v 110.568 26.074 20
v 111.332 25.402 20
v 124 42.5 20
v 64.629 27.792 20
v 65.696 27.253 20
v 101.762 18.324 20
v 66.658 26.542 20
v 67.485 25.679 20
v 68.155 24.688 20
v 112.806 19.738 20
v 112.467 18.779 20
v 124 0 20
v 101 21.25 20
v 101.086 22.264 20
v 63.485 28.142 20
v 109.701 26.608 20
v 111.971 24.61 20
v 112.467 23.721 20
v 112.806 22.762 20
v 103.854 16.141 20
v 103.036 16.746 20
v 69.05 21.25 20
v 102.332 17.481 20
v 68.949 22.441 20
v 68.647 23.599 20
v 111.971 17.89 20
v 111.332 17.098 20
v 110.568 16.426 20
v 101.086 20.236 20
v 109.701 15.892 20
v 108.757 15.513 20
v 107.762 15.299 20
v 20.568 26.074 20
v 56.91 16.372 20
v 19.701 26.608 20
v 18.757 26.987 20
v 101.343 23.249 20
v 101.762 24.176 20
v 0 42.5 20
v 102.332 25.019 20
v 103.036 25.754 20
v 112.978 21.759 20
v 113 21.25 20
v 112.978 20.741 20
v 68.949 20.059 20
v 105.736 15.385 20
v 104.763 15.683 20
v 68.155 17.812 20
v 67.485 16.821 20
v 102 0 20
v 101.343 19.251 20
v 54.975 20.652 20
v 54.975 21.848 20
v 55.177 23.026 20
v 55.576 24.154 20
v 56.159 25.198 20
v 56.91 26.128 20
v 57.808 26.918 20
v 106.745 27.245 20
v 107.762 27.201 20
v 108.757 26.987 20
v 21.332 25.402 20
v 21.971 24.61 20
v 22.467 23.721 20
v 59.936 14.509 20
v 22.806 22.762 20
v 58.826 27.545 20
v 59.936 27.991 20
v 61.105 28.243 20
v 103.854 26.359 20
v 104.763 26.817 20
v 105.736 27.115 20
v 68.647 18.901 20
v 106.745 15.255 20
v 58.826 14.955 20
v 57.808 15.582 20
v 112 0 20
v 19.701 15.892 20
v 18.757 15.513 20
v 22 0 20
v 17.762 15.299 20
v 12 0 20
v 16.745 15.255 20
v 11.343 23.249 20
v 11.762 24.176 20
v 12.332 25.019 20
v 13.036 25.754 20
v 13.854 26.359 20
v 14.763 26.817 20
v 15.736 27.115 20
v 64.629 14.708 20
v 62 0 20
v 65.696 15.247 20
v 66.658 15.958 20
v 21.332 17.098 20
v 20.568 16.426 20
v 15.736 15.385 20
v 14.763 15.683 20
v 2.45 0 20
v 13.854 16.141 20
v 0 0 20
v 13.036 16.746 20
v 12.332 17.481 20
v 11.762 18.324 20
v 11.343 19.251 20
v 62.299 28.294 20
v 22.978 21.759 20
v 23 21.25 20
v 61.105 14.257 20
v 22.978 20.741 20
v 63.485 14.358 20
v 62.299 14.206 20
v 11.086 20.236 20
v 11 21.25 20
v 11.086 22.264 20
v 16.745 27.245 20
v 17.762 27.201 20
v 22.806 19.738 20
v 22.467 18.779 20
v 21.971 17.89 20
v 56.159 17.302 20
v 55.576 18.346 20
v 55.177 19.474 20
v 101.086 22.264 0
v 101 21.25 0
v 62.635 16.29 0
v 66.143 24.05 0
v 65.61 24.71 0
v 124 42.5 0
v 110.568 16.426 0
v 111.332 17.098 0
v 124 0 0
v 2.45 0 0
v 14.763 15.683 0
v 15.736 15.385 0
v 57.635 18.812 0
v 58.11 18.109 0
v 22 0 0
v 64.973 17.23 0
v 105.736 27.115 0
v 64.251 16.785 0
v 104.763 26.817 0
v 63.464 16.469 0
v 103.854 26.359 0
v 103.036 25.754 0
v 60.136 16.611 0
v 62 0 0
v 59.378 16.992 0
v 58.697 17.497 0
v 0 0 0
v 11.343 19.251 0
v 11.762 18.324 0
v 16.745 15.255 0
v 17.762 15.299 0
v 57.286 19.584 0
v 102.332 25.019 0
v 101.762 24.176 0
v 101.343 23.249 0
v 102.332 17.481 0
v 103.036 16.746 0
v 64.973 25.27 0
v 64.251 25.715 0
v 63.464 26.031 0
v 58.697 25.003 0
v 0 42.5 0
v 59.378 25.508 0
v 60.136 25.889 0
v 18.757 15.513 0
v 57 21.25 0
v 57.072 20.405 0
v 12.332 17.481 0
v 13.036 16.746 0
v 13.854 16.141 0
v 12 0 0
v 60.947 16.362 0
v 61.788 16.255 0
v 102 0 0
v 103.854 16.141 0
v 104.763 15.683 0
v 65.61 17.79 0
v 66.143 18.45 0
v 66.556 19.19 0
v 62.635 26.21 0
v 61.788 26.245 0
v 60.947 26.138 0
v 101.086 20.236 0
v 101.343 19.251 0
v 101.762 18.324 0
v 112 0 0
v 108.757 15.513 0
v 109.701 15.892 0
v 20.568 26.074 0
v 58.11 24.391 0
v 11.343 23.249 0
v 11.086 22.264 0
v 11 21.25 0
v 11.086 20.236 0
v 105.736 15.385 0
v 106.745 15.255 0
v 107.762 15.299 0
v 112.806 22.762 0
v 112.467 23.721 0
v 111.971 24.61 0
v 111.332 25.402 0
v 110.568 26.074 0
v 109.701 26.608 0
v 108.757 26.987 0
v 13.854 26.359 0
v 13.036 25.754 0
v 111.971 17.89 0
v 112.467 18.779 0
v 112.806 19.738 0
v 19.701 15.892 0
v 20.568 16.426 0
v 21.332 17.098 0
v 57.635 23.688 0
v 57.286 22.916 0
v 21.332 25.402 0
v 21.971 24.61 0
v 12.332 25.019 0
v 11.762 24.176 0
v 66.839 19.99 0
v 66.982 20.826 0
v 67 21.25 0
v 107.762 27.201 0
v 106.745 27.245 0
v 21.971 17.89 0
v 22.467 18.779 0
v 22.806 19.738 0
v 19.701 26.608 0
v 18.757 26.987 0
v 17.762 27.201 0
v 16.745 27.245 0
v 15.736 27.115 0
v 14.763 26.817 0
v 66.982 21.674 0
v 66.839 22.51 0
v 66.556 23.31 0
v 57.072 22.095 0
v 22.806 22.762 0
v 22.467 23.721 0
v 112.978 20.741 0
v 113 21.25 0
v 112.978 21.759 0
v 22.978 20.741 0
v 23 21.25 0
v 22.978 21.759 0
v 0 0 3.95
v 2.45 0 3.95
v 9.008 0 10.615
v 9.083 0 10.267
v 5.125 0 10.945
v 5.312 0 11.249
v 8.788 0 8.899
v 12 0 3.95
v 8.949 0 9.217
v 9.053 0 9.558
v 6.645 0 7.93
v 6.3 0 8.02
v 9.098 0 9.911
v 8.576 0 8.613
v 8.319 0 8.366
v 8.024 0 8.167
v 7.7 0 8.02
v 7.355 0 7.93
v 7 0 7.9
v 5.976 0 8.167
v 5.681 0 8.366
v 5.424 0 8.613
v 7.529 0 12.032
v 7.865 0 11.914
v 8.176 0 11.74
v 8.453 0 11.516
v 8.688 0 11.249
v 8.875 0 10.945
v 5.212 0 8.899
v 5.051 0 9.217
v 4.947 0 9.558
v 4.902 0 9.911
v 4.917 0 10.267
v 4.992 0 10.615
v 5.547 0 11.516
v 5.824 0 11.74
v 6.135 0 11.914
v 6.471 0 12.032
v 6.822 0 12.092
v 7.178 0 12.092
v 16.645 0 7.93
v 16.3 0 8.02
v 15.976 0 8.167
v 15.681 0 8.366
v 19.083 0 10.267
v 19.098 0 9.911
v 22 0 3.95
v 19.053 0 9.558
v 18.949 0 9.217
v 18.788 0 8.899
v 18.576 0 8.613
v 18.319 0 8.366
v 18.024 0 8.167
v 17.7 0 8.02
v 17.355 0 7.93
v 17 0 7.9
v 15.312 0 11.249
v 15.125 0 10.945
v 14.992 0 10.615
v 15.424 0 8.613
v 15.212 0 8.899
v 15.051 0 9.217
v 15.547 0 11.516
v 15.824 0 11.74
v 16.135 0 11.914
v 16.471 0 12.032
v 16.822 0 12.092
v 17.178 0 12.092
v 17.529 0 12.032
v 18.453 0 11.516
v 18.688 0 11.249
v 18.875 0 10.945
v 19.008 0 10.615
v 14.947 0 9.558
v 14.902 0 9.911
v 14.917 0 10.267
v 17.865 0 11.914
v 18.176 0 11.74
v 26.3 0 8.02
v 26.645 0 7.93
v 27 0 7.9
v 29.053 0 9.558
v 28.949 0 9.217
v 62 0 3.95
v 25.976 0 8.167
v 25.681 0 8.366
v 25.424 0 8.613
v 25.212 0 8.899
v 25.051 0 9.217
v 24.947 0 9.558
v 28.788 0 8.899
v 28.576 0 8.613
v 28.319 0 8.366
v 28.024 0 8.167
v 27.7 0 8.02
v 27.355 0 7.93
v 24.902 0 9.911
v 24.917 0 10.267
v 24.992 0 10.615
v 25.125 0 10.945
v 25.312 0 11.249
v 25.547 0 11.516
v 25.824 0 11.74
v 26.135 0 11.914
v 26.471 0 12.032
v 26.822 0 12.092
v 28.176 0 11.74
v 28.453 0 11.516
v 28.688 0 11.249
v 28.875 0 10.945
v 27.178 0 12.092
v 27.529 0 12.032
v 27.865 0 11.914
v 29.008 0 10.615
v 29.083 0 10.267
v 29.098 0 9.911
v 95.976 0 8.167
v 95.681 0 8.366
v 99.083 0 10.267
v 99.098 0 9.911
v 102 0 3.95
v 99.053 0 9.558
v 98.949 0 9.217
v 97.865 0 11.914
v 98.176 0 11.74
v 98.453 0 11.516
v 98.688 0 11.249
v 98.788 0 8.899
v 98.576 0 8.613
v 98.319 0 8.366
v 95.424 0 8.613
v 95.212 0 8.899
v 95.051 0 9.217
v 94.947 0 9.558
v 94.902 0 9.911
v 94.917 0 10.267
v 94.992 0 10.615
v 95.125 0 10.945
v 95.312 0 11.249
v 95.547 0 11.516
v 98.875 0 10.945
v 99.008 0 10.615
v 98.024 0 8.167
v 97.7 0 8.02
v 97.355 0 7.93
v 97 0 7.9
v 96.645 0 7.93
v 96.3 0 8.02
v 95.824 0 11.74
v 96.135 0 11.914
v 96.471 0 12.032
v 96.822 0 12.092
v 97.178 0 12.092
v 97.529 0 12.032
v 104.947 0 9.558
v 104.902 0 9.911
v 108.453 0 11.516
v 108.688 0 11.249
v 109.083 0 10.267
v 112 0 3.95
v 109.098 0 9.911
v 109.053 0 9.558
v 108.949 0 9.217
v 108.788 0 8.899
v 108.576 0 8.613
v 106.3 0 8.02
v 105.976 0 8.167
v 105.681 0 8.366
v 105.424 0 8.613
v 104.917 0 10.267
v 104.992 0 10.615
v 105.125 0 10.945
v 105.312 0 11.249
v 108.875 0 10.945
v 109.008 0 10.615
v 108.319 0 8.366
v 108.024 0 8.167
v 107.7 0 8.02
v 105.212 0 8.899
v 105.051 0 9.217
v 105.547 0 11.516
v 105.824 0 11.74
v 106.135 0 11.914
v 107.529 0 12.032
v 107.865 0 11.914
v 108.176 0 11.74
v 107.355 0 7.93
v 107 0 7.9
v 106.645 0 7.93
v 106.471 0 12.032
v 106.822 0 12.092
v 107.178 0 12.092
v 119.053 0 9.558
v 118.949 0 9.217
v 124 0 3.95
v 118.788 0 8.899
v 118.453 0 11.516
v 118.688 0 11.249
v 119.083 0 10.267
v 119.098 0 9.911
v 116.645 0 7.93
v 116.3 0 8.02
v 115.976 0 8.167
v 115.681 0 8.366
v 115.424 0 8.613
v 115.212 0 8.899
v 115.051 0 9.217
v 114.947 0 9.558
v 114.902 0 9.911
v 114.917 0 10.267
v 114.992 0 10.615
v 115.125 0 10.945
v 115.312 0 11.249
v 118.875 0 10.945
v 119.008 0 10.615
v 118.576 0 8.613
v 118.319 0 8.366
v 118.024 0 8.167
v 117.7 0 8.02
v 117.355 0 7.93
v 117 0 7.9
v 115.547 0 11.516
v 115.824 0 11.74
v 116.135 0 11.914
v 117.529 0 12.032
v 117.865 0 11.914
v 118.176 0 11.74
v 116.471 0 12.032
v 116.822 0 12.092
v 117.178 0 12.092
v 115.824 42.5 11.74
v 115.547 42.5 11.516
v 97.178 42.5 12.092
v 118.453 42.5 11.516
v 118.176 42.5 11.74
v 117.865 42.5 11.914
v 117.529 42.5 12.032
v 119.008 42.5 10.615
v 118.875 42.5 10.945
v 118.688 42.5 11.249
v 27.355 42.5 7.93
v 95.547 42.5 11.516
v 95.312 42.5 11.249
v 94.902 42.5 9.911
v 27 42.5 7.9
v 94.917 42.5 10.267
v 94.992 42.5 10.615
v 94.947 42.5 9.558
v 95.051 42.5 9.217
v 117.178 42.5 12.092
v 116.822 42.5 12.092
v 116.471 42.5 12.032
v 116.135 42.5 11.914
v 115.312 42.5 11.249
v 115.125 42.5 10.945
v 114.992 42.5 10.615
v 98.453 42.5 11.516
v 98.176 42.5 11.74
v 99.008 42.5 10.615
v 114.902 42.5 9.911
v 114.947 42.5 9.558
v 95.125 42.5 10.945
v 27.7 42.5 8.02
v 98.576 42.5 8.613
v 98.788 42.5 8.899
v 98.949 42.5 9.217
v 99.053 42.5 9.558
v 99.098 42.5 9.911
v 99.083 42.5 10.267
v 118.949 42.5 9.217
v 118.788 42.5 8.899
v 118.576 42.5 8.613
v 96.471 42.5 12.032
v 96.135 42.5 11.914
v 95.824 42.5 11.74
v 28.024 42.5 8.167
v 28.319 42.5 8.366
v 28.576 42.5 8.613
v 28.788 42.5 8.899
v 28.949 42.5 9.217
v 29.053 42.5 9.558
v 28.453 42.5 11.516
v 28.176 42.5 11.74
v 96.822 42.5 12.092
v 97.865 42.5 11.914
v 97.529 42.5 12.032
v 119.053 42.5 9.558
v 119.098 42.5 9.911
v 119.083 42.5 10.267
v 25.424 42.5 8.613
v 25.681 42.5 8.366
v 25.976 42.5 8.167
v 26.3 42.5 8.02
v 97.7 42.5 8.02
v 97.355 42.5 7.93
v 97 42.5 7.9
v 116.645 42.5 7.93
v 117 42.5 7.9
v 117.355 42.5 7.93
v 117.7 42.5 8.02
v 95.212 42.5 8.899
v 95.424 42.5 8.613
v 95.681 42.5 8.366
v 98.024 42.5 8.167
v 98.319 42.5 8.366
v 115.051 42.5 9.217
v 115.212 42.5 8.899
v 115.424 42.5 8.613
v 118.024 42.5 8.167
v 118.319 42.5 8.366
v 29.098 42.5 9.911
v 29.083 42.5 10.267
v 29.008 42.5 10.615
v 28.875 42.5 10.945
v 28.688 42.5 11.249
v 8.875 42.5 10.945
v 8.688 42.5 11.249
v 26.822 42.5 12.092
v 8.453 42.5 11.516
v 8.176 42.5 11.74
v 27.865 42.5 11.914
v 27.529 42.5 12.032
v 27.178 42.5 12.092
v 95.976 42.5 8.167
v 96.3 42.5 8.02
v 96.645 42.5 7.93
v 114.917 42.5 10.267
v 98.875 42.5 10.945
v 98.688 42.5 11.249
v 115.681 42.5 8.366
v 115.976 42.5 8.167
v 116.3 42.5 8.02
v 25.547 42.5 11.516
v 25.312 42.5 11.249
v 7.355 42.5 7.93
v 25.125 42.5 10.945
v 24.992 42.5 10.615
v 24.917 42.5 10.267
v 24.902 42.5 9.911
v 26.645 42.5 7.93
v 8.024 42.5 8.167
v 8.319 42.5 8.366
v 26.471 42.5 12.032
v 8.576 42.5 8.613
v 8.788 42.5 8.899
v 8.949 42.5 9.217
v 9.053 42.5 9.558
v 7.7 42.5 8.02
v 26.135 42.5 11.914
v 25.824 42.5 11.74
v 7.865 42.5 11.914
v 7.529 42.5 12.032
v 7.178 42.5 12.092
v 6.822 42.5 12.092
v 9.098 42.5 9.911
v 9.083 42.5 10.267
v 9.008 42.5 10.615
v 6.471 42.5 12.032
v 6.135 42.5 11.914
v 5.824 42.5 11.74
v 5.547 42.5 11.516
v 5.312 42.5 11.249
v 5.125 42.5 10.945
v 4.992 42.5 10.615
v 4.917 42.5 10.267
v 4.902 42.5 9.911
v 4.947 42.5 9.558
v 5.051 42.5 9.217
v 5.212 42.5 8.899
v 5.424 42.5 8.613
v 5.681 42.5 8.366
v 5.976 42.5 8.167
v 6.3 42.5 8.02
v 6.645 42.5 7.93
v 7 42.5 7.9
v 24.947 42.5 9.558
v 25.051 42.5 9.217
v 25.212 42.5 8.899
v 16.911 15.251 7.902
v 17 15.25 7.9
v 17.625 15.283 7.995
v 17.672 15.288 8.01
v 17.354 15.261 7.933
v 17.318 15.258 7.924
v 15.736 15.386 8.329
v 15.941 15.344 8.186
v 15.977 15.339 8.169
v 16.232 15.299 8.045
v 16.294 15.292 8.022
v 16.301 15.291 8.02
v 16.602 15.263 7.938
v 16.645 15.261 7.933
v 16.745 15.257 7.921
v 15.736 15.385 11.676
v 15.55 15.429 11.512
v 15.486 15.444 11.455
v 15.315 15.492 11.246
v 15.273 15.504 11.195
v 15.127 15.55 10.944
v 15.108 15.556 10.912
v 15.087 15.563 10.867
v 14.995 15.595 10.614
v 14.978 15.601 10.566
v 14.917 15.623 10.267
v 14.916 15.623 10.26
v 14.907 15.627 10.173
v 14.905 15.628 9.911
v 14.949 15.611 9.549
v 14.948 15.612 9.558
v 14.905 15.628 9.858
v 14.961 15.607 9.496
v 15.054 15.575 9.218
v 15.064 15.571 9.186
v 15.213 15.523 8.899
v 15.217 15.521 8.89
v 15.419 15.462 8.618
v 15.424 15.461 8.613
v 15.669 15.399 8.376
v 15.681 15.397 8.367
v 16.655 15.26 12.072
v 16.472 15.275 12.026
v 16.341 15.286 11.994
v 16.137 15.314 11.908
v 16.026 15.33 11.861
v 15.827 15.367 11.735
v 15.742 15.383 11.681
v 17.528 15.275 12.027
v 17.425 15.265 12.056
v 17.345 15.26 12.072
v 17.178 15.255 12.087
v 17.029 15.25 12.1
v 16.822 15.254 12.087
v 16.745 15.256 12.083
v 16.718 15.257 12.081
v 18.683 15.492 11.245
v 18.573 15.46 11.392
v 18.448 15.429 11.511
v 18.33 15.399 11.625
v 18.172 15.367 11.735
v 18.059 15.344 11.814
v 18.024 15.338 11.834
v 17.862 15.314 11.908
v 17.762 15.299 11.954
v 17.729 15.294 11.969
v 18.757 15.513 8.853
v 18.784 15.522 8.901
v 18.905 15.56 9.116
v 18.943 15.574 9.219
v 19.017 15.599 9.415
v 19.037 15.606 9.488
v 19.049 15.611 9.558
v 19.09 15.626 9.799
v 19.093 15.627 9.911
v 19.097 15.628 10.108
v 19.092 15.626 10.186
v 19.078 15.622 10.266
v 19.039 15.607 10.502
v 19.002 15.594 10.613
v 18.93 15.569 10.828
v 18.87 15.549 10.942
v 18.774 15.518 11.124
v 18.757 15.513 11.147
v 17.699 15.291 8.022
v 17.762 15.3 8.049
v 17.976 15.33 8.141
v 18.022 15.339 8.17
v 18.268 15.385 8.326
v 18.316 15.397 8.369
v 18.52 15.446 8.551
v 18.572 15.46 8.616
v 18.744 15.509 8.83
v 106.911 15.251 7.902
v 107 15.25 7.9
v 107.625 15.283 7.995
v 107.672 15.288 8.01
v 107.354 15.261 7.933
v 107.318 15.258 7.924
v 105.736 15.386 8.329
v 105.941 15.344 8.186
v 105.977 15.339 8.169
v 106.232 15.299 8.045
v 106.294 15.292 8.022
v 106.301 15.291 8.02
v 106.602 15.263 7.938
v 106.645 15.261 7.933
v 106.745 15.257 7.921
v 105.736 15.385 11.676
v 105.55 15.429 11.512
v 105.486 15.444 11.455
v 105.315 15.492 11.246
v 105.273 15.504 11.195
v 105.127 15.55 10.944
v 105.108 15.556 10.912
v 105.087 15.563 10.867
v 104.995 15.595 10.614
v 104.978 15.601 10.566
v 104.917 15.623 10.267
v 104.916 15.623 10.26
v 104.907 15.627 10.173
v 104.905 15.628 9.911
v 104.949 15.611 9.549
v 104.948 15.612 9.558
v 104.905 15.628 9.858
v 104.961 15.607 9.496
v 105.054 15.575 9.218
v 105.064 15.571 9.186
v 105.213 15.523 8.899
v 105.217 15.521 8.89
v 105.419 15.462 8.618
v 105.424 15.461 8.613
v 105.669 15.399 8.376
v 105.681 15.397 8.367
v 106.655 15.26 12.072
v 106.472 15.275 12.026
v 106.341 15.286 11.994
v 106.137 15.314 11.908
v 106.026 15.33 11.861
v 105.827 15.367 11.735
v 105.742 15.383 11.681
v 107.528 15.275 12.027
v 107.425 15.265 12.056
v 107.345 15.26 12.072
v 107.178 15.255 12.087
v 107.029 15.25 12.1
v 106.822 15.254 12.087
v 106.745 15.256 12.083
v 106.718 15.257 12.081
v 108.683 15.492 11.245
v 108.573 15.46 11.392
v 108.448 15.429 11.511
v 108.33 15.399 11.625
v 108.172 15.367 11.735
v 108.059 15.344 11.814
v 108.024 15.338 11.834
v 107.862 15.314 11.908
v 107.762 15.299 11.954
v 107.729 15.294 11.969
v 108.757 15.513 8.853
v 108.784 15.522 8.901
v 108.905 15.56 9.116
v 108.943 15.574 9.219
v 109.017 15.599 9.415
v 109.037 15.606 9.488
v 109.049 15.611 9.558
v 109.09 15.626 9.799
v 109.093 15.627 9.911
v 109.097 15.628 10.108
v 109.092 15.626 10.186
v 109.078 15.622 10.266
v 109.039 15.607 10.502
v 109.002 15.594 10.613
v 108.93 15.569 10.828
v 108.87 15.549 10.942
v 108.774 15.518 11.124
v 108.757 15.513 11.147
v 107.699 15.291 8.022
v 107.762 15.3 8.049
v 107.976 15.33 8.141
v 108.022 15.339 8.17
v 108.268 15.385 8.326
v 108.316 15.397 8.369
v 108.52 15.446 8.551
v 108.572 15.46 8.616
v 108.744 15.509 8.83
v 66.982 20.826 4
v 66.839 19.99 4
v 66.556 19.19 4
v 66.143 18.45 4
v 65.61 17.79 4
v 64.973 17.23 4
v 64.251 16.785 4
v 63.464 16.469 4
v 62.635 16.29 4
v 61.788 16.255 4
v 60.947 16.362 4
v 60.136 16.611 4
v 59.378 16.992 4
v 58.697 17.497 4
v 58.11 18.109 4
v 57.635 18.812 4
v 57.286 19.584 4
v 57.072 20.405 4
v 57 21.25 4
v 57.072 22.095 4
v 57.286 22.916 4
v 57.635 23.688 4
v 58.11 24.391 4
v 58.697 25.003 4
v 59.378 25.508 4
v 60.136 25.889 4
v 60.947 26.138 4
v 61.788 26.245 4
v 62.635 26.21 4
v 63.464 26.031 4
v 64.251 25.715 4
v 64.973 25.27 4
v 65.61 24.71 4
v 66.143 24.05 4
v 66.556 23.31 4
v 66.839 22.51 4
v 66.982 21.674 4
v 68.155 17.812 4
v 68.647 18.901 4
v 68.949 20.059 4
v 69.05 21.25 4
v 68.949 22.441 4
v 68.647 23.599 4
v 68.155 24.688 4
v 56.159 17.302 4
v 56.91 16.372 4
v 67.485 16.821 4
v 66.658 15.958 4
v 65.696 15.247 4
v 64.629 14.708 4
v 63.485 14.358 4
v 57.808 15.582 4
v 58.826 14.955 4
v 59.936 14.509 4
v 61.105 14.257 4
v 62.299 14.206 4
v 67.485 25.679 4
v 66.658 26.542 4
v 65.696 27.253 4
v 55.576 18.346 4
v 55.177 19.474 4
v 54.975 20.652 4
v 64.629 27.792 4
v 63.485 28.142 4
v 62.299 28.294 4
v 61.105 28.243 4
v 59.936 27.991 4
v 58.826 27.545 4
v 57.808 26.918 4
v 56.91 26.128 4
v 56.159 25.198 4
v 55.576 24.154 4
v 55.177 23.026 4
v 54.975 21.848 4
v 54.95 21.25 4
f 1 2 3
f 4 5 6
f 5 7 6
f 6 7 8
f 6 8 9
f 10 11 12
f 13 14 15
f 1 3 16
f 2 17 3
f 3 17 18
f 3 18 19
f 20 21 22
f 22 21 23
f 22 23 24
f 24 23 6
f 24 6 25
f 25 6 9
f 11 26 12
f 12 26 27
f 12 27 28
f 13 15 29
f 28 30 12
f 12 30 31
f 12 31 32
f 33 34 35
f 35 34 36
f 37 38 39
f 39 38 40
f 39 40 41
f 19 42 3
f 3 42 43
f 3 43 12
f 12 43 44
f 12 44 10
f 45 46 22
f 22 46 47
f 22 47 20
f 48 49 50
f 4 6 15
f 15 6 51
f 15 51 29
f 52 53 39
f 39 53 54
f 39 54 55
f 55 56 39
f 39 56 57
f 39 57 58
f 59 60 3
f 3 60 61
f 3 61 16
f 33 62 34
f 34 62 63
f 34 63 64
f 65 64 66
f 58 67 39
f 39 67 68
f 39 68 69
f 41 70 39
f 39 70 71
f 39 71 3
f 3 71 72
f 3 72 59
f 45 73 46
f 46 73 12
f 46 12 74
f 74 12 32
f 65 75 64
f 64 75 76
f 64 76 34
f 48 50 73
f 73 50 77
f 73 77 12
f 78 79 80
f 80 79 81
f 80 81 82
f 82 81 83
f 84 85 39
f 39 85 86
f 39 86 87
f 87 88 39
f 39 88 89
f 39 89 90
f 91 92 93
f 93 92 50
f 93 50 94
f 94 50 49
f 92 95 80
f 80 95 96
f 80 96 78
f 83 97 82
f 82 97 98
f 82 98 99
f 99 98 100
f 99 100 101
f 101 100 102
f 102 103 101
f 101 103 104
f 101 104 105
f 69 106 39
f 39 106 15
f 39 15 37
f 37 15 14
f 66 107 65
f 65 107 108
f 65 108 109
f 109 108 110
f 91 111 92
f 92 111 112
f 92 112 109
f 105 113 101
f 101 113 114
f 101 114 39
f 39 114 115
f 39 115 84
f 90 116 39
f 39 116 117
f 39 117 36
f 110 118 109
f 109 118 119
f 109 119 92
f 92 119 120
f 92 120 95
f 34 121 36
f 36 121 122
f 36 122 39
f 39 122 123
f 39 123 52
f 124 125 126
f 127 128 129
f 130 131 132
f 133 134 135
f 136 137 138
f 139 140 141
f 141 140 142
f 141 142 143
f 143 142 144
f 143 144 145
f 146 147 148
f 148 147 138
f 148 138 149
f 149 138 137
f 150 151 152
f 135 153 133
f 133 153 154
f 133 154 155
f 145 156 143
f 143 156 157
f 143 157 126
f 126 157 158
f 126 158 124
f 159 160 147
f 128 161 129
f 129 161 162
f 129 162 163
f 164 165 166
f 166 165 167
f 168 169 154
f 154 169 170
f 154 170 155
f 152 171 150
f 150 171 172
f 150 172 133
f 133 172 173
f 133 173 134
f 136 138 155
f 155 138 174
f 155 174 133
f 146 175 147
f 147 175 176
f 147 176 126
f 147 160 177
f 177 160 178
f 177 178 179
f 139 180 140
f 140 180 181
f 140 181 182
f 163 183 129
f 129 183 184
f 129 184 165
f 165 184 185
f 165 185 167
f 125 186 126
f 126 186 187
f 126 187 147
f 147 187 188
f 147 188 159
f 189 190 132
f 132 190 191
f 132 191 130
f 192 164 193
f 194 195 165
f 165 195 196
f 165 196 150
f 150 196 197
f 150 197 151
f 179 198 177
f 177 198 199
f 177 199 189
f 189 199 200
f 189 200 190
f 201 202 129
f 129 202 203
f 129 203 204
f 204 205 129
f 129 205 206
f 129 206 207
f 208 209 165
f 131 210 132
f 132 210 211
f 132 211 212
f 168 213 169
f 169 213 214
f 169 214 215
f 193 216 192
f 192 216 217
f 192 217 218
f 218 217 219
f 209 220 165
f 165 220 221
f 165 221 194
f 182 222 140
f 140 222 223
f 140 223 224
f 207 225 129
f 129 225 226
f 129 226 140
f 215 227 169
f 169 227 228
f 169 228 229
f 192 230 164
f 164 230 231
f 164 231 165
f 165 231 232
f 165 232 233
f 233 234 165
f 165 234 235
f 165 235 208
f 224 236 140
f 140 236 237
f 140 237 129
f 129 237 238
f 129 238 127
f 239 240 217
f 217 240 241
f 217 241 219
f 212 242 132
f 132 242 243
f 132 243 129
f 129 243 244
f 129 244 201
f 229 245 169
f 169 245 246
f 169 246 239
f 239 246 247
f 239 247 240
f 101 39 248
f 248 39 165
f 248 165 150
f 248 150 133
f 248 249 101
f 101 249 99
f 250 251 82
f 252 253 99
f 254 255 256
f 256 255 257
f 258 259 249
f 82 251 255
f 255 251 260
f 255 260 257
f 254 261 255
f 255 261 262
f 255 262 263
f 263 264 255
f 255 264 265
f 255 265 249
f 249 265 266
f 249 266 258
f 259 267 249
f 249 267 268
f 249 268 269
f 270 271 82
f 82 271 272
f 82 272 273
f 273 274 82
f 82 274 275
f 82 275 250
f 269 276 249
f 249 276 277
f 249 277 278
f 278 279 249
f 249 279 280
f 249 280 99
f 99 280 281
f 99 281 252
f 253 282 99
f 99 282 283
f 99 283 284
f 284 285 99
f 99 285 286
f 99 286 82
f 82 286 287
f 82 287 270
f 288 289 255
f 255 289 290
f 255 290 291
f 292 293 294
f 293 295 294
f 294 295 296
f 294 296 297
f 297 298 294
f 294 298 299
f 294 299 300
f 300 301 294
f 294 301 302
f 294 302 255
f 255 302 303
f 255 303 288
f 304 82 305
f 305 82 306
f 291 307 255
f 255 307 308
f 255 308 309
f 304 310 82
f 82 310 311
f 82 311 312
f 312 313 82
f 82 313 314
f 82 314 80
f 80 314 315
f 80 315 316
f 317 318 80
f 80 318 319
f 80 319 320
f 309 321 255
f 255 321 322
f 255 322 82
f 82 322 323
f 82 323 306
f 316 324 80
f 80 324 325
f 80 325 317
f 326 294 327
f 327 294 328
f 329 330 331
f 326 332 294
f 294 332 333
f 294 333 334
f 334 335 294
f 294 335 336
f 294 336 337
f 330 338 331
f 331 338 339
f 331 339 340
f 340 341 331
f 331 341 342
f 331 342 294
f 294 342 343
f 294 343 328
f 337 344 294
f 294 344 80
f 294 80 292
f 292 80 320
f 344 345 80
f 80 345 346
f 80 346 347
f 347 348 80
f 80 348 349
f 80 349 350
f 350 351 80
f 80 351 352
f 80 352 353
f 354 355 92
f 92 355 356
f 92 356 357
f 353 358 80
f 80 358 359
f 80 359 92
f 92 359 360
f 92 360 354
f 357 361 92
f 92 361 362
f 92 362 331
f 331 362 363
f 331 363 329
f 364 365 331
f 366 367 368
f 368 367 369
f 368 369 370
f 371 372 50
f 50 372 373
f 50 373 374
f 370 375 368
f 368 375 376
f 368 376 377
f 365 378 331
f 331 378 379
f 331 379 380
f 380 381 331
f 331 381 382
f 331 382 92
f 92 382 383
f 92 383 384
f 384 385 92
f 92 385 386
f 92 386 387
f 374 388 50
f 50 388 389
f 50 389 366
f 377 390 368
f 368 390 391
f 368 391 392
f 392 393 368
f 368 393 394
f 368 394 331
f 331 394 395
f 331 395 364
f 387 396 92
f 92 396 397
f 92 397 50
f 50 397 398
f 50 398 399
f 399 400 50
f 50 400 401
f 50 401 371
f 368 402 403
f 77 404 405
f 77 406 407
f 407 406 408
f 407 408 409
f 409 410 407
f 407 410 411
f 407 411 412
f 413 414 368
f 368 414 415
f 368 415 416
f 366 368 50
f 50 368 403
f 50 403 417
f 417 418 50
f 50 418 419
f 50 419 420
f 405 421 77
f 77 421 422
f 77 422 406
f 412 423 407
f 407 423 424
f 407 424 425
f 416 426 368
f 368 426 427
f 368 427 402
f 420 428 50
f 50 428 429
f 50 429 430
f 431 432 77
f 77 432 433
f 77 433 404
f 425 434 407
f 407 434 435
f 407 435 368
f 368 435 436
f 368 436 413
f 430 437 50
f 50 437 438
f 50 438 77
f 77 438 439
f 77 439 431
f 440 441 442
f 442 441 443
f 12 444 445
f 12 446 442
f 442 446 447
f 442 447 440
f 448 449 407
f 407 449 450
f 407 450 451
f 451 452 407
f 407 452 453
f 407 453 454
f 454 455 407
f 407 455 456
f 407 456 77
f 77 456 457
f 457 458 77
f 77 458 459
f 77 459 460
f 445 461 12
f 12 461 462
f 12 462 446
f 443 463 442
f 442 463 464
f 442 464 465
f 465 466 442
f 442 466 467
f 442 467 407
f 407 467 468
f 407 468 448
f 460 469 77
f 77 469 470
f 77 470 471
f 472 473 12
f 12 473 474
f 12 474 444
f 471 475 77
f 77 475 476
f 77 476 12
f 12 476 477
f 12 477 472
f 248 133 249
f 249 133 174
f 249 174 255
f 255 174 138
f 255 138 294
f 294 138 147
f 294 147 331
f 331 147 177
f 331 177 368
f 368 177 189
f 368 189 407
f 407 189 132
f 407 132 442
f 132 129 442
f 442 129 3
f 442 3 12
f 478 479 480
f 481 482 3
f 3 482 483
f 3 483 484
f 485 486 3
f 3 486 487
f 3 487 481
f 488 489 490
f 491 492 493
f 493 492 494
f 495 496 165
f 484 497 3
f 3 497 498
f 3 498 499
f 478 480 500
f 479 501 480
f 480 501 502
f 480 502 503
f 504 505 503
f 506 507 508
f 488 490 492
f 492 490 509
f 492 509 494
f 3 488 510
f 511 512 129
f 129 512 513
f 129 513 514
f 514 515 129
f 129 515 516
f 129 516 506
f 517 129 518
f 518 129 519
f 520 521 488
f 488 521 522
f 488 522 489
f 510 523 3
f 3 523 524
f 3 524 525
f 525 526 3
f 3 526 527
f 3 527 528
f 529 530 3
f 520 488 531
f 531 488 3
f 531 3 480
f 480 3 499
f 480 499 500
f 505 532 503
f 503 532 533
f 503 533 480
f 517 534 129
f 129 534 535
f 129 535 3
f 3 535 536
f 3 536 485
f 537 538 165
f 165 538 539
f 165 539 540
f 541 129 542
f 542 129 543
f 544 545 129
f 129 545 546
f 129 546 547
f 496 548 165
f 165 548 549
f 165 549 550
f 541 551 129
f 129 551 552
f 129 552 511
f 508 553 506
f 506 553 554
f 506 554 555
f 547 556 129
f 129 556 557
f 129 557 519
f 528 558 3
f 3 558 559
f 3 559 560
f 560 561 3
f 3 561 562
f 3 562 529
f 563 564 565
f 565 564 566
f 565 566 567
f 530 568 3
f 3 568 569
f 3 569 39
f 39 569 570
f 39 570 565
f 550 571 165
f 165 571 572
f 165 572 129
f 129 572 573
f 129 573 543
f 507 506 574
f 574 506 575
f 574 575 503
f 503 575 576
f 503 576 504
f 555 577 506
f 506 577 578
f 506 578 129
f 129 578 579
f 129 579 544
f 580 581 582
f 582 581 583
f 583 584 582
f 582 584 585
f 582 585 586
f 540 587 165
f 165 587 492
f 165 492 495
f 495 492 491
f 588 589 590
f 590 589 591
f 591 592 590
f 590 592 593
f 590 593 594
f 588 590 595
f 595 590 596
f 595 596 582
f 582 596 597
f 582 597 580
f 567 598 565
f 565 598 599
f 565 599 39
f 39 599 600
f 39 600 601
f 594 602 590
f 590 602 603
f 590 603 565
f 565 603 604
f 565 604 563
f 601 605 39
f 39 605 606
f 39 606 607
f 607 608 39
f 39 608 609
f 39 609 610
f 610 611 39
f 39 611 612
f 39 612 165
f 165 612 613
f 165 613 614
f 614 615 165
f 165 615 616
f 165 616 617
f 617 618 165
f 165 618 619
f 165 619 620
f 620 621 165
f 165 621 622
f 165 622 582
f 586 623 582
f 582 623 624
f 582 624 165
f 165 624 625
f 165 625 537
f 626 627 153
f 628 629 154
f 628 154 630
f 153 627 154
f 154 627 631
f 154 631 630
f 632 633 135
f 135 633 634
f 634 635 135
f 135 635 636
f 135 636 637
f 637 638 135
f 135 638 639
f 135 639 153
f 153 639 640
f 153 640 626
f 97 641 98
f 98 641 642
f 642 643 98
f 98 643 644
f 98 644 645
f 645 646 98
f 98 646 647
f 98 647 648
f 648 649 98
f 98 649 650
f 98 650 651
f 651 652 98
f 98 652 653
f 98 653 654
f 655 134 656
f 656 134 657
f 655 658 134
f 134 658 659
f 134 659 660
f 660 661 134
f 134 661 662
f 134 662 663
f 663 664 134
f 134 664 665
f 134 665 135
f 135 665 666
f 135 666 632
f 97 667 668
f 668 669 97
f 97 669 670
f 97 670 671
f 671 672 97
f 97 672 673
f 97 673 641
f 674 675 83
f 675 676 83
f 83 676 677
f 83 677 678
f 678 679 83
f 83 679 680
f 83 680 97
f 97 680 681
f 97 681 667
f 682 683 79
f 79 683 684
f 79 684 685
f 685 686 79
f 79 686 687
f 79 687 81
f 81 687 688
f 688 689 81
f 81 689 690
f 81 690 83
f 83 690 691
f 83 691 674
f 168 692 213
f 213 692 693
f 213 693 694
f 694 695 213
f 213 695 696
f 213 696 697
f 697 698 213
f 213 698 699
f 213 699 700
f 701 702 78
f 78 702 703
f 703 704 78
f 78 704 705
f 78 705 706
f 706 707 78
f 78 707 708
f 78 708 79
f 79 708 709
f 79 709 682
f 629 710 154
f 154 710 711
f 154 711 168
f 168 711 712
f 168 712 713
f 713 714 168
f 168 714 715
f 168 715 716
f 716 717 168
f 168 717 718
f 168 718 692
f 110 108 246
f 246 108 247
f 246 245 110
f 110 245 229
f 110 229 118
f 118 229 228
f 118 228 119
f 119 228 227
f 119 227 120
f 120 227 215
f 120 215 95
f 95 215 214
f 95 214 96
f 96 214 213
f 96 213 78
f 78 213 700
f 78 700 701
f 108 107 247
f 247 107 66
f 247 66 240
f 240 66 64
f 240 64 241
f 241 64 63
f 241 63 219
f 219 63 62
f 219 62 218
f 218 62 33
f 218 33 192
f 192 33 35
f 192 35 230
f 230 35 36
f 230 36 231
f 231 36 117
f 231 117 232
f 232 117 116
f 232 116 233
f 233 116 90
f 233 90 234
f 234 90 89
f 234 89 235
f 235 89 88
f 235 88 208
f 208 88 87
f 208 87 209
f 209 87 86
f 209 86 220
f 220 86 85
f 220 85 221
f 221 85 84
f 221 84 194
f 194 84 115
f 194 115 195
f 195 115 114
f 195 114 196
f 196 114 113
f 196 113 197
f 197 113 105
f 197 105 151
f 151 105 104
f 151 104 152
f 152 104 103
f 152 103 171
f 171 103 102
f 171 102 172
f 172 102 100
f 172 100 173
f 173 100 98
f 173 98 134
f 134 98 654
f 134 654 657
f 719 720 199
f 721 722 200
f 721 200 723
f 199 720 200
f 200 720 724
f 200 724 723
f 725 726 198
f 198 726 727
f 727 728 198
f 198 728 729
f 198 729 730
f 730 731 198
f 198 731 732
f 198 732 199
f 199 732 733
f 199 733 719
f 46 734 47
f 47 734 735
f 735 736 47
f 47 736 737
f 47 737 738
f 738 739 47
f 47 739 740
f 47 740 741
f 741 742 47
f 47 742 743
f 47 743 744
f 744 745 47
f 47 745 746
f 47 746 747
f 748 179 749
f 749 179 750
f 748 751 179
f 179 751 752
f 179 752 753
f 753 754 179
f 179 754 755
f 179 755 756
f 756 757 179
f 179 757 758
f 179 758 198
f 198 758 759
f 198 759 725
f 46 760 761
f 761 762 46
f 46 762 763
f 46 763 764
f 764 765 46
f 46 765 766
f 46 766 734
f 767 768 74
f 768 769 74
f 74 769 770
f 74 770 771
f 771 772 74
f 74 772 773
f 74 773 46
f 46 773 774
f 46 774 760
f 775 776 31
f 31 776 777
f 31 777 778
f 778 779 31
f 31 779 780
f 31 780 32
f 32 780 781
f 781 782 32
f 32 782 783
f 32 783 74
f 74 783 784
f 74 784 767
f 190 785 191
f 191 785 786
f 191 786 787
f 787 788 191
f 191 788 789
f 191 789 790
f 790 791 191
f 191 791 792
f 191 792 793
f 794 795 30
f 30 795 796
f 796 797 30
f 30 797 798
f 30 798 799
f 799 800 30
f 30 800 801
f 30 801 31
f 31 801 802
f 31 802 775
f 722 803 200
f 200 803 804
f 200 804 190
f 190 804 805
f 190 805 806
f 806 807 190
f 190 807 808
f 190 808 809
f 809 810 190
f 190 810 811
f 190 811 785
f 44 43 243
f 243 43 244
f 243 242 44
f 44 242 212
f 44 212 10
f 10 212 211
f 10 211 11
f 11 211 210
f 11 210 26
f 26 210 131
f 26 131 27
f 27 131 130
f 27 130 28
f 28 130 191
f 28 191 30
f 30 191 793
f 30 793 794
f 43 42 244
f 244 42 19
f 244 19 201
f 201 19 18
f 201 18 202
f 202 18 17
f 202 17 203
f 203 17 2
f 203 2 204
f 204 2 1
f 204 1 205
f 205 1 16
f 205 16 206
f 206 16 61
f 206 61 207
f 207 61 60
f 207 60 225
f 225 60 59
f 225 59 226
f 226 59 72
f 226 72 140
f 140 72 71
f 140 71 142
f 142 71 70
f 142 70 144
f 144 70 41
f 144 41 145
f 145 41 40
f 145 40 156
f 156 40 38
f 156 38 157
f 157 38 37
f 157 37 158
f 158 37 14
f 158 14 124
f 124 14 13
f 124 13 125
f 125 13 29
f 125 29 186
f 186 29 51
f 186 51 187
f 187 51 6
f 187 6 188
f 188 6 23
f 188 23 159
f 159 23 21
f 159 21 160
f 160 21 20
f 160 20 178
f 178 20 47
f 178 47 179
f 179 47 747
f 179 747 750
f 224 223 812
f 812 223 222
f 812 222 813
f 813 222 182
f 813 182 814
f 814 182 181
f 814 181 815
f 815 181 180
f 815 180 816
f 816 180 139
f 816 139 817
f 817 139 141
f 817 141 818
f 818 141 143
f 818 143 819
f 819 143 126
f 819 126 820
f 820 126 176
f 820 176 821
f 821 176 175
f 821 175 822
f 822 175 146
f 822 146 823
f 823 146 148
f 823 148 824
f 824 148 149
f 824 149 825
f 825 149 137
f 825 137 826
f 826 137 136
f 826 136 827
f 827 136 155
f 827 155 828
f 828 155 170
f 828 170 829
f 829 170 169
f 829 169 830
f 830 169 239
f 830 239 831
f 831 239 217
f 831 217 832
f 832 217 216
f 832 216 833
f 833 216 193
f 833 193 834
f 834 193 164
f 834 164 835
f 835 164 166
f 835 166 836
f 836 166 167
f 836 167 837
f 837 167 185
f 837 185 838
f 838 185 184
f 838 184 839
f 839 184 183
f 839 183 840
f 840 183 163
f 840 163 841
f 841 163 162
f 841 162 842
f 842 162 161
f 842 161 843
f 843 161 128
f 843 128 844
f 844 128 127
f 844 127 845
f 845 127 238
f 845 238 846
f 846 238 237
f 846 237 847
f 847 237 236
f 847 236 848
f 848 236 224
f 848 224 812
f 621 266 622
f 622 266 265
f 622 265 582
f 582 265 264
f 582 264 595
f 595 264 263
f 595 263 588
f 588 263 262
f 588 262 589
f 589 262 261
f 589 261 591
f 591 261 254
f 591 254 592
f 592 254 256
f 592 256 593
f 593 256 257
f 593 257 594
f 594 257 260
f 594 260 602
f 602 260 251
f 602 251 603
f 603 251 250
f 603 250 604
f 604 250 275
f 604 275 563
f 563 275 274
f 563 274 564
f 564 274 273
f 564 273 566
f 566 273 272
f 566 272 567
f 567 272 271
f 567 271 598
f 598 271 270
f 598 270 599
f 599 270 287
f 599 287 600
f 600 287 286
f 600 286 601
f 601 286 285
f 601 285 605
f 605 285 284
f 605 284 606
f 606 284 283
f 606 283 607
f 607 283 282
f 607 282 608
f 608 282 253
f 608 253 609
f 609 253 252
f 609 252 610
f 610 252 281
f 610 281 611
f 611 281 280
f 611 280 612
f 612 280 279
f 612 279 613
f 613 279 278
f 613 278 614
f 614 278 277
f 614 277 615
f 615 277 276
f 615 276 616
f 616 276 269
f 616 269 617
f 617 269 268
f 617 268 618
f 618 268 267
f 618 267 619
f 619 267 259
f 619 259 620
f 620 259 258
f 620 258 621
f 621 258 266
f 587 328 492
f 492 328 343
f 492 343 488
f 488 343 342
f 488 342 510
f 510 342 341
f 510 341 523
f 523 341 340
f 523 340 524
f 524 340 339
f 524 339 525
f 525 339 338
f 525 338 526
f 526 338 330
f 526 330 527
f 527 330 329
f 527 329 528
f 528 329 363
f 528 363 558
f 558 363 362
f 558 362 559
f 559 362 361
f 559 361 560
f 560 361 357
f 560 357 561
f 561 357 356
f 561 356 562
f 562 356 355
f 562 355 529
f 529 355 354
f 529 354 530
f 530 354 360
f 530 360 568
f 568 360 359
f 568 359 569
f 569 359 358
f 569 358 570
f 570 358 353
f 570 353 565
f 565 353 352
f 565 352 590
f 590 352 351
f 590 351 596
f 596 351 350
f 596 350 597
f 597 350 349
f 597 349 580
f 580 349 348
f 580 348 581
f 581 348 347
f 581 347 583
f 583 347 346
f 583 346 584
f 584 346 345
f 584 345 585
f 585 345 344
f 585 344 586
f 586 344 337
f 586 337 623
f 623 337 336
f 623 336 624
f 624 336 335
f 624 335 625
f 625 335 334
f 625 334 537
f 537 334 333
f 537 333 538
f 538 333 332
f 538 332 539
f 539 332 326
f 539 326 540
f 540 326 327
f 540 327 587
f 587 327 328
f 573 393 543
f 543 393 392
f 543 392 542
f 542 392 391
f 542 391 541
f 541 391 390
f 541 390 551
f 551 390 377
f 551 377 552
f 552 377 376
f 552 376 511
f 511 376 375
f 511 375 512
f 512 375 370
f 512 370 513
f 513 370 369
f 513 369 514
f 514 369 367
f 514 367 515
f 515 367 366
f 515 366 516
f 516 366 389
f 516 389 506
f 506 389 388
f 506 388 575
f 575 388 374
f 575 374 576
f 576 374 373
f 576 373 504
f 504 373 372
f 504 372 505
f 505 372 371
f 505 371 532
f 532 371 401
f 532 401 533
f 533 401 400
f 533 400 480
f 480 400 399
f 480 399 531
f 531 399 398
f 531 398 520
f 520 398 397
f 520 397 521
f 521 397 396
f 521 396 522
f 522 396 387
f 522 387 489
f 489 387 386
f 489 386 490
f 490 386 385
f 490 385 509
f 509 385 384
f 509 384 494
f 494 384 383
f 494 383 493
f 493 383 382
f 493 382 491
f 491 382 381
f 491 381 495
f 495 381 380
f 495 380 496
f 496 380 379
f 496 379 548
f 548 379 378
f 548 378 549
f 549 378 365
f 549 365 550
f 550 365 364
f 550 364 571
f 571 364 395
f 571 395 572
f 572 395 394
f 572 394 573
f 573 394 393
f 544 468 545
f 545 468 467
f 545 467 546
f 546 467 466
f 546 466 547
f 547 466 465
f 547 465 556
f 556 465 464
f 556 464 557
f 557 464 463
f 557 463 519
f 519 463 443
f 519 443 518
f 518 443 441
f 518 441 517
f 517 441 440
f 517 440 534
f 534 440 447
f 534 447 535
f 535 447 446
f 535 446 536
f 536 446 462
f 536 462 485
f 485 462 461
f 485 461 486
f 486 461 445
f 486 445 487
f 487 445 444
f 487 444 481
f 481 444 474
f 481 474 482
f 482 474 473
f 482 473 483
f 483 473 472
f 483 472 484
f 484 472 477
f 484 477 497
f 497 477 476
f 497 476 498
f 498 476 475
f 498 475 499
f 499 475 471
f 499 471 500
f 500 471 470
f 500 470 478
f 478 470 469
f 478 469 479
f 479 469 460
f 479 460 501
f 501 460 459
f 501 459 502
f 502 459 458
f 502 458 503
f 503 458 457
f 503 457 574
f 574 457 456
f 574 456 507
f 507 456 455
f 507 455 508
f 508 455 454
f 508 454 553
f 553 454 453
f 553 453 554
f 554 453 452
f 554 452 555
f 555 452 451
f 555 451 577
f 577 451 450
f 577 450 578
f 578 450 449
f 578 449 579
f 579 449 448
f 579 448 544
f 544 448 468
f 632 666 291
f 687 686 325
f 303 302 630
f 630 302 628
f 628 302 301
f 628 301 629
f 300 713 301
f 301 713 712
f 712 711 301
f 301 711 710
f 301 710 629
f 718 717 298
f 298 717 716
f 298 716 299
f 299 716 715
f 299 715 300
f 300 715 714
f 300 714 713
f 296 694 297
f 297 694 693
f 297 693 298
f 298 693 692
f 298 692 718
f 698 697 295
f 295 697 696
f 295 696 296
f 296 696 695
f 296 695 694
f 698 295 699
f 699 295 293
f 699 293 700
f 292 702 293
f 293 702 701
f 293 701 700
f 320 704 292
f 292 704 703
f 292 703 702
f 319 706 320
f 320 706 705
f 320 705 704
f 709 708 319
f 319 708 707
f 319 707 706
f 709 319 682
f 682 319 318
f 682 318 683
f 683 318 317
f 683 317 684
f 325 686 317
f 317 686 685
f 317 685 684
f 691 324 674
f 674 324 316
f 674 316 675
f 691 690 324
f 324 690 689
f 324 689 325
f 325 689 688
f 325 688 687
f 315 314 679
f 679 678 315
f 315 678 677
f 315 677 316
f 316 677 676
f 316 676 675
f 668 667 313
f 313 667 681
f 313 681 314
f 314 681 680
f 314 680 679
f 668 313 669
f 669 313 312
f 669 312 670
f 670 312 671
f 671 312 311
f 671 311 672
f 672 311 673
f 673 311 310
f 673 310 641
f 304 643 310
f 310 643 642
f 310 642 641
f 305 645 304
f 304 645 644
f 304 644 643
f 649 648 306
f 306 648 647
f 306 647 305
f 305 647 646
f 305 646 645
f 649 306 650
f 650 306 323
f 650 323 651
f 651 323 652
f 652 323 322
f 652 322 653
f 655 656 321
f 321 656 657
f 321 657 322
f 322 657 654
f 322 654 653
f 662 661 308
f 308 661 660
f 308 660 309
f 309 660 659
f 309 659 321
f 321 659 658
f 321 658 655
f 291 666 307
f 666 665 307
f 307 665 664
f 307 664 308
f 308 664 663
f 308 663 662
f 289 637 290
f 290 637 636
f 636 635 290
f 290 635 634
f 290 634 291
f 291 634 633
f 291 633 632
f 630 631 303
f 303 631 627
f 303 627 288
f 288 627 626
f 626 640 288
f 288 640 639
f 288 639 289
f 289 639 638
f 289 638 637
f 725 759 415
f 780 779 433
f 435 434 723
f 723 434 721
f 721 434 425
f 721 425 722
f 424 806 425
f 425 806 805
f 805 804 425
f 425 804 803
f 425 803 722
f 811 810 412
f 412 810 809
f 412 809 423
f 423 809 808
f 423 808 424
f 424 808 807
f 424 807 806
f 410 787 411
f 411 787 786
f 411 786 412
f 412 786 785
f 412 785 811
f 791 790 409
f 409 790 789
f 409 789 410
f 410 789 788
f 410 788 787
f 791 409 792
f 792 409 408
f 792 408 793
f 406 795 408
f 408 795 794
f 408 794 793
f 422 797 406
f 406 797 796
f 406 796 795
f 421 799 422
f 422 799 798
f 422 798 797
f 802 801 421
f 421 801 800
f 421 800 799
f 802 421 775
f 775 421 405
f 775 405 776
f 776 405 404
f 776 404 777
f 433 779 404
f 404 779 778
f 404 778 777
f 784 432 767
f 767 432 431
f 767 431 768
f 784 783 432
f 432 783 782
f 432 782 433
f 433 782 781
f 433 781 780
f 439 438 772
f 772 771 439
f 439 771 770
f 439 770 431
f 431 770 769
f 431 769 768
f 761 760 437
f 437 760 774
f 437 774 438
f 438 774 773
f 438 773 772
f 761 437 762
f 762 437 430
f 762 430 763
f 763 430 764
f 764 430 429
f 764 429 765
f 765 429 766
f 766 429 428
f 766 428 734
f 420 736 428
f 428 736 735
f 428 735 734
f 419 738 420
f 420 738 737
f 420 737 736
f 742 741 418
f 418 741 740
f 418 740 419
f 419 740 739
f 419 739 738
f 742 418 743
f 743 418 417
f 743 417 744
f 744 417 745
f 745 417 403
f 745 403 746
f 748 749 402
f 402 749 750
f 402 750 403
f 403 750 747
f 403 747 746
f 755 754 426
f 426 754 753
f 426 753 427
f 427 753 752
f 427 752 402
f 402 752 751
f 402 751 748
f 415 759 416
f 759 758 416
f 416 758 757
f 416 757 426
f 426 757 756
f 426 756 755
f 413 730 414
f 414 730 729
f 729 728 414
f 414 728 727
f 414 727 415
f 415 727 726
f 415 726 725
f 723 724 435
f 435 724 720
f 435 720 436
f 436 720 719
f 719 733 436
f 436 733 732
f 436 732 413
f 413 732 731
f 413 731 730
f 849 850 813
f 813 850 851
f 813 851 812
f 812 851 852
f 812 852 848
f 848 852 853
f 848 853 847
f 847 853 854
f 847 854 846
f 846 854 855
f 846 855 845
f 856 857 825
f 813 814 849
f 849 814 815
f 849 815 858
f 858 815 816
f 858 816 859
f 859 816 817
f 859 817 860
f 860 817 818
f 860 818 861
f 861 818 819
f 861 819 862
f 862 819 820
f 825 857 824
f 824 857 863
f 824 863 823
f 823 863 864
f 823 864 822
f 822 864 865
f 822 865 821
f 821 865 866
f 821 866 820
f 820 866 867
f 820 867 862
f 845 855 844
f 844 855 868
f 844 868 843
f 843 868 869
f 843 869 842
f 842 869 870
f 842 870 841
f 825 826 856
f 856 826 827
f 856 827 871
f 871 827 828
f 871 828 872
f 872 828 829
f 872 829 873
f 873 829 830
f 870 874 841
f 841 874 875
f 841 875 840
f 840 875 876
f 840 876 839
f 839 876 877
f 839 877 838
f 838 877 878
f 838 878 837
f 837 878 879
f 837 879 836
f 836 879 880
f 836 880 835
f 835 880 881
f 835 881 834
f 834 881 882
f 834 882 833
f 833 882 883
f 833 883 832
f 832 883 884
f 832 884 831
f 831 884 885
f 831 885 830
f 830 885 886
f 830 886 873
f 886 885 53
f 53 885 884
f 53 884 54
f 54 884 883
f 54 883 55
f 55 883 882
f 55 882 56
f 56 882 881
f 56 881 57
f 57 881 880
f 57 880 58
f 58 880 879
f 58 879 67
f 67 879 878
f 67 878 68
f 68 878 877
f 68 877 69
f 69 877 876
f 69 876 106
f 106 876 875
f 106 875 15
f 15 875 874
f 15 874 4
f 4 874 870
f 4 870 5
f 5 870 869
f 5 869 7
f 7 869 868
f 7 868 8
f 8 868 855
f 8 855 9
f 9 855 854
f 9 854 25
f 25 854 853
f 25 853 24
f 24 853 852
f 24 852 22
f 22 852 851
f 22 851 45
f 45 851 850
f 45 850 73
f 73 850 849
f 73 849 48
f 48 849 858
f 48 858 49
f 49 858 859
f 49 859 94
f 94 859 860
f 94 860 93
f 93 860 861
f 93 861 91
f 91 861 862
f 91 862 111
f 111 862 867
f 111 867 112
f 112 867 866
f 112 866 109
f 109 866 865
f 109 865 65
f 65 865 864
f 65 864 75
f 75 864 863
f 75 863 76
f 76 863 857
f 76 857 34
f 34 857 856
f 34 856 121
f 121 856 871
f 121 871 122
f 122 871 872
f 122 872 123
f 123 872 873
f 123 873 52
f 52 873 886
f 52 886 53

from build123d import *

# Parameters (mm, degrees)
SKETCH1_W           = 124
SKETCH1_H           = 42.5
SKETCH1_R           = 6
SKETCH1_R_2         = 5
BOSS_EXTRUDE1_DEPTH = 20
CUT_EXTRUDE1_REACH  = 44.5
SKETCH2_R           = 2.1
SKETCH3_R           = 7.05
CUT_EXTRUDE2_DEPTH  = 16


with BuildPart() as part:
    # Sketch1 → Boss-Extrude1 (new body)
    with BuildSketch(Plane.XY):
        with Locations((62, 21.25)):
            Rectangle(SKETCH1_W, SKETCH1_H)
        with Locations((17, 21.25)):
            Circle(SKETCH1_R, mode=Mode.SUBTRACT)
        with Locations((107, 21.25)):
            Circle(SKETCH1_R, mode=Mode.SUBTRACT)
        with Locations((62, 21.25)):
            Circle(SKETCH1_R_2, mode=Mode.SUBTRACT)
    extrude(amount=BOSS_EXTRUDE1_DEPTH)

    # Sketch2 → Cut-Extrude1 (cut, up to next)
    with BuildSketch(Plane.XZ, mode=Mode.PRIVATE) as cut_extrude1_sk1:
        with Locations((7, 10)):
            Circle(SKETCH2_R)
    cut_extrude1_tool1 = extrude(cut_extrude1_sk1.sketch, amount=-CUT_EXTRUDE1_REACH, mode=Mode.PRIVATE) & part.part
    add(cut_extrude1_tool1.solids().sort_by_distance((7, 0, 10))[0], mode=Mode.SUBTRACT)
    # Sketch2 → Cut-Extrude1 (cut, up to next)
    with BuildSketch(Plane.XZ, mode=Mode.PRIVATE) as cut_extrude1_sk2:
        with Locations((27, 10)):
            Circle(SKETCH2_R)
    cut_extrude1_tool2 = extrude(cut_extrude1_sk2.sketch, amount=-CUT_EXTRUDE1_REACH, mode=Mode.PRIVATE) & part.part
    add(cut_extrude1_tool2.solids().sort_by_distance((27, 0, 10))[0], mode=Mode.SUBTRACT)
    # Sketch2 → Cut-Extrude1 (cut, up to next)
    with BuildSketch(Plane.XZ, mode=Mode.PRIVATE) as cut_extrude1_sk3:
        with Locations((97, 10)):
            Circle(SKETCH2_R)
    cut_extrude1_tool3 = extrude(cut_extrude1_sk3.sketch, amount=-CUT_EXTRUDE1_REACH, mode=Mode.PRIVATE) & part.part
    add(cut_extrude1_tool3.solids().sort_by_distance((97, 0, 10))[0], mode=Mode.SUBTRACT)
    # Sketch2 → Cut-Extrude1 (cut, up to next)
    with BuildSketch(Plane.XZ, mode=Mode.PRIVATE) as cut_extrude1_sk4:
        with Locations((117, 10)):
            Circle(SKETCH2_R)
    cut_extrude1_tool4 = extrude(cut_extrude1_sk4.sketch, amount=-CUT_EXTRUDE1_REACH, mode=Mode.PRIVATE) & part.part
    add(cut_extrude1_tool4.solids().sort_by_distance((117, 0, 10))[0], mode=Mode.SUBTRACT)
    # Sketch2 → Cut-Extrude1 (cut, up to next)
    with BuildSketch(Plane.XZ, mode=Mode.PRIVATE) as cut_extrude1_sk5:
        with Locations((17, 10)):
            Circle(SKETCH2_R)
    cut_extrude1_tool5 = extrude(cut_extrude1_sk5.sketch, amount=-CUT_EXTRUDE1_REACH, mode=Mode.PRIVATE) & part.part
    add(cut_extrude1_tool5.solids().sort_by_distance((17, 0, 10))[0], mode=Mode.SUBTRACT)
    # Sketch2 → Cut-Extrude1 (cut, up to next)
    with BuildSketch(Plane.XZ, mode=Mode.PRIVATE) as cut_extrude1_sk6:
        with Locations((107, 10)):
            Circle(SKETCH2_R)
    cut_extrude1_tool6 = extrude(cut_extrude1_sk6.sketch, amount=-CUT_EXTRUDE1_REACH, mode=Mode.PRIVATE) & part.part
    add(cut_extrude1_tool6.solids().sort_by_distance((107, 0, 10))[0], mode=Mode.SUBTRACT)

    # Sketch3 → Cut-Extrude2 (cut)
    with BuildSketch(Plane.XY.offset(20)):
        with Locations((62, 21.25)):
            Circle(SKETCH3_R)
    extrude(amount=-CUT_EXTRUDE2_DEPTH, mode=Mode.SUBTRACT)


solid = part.part
